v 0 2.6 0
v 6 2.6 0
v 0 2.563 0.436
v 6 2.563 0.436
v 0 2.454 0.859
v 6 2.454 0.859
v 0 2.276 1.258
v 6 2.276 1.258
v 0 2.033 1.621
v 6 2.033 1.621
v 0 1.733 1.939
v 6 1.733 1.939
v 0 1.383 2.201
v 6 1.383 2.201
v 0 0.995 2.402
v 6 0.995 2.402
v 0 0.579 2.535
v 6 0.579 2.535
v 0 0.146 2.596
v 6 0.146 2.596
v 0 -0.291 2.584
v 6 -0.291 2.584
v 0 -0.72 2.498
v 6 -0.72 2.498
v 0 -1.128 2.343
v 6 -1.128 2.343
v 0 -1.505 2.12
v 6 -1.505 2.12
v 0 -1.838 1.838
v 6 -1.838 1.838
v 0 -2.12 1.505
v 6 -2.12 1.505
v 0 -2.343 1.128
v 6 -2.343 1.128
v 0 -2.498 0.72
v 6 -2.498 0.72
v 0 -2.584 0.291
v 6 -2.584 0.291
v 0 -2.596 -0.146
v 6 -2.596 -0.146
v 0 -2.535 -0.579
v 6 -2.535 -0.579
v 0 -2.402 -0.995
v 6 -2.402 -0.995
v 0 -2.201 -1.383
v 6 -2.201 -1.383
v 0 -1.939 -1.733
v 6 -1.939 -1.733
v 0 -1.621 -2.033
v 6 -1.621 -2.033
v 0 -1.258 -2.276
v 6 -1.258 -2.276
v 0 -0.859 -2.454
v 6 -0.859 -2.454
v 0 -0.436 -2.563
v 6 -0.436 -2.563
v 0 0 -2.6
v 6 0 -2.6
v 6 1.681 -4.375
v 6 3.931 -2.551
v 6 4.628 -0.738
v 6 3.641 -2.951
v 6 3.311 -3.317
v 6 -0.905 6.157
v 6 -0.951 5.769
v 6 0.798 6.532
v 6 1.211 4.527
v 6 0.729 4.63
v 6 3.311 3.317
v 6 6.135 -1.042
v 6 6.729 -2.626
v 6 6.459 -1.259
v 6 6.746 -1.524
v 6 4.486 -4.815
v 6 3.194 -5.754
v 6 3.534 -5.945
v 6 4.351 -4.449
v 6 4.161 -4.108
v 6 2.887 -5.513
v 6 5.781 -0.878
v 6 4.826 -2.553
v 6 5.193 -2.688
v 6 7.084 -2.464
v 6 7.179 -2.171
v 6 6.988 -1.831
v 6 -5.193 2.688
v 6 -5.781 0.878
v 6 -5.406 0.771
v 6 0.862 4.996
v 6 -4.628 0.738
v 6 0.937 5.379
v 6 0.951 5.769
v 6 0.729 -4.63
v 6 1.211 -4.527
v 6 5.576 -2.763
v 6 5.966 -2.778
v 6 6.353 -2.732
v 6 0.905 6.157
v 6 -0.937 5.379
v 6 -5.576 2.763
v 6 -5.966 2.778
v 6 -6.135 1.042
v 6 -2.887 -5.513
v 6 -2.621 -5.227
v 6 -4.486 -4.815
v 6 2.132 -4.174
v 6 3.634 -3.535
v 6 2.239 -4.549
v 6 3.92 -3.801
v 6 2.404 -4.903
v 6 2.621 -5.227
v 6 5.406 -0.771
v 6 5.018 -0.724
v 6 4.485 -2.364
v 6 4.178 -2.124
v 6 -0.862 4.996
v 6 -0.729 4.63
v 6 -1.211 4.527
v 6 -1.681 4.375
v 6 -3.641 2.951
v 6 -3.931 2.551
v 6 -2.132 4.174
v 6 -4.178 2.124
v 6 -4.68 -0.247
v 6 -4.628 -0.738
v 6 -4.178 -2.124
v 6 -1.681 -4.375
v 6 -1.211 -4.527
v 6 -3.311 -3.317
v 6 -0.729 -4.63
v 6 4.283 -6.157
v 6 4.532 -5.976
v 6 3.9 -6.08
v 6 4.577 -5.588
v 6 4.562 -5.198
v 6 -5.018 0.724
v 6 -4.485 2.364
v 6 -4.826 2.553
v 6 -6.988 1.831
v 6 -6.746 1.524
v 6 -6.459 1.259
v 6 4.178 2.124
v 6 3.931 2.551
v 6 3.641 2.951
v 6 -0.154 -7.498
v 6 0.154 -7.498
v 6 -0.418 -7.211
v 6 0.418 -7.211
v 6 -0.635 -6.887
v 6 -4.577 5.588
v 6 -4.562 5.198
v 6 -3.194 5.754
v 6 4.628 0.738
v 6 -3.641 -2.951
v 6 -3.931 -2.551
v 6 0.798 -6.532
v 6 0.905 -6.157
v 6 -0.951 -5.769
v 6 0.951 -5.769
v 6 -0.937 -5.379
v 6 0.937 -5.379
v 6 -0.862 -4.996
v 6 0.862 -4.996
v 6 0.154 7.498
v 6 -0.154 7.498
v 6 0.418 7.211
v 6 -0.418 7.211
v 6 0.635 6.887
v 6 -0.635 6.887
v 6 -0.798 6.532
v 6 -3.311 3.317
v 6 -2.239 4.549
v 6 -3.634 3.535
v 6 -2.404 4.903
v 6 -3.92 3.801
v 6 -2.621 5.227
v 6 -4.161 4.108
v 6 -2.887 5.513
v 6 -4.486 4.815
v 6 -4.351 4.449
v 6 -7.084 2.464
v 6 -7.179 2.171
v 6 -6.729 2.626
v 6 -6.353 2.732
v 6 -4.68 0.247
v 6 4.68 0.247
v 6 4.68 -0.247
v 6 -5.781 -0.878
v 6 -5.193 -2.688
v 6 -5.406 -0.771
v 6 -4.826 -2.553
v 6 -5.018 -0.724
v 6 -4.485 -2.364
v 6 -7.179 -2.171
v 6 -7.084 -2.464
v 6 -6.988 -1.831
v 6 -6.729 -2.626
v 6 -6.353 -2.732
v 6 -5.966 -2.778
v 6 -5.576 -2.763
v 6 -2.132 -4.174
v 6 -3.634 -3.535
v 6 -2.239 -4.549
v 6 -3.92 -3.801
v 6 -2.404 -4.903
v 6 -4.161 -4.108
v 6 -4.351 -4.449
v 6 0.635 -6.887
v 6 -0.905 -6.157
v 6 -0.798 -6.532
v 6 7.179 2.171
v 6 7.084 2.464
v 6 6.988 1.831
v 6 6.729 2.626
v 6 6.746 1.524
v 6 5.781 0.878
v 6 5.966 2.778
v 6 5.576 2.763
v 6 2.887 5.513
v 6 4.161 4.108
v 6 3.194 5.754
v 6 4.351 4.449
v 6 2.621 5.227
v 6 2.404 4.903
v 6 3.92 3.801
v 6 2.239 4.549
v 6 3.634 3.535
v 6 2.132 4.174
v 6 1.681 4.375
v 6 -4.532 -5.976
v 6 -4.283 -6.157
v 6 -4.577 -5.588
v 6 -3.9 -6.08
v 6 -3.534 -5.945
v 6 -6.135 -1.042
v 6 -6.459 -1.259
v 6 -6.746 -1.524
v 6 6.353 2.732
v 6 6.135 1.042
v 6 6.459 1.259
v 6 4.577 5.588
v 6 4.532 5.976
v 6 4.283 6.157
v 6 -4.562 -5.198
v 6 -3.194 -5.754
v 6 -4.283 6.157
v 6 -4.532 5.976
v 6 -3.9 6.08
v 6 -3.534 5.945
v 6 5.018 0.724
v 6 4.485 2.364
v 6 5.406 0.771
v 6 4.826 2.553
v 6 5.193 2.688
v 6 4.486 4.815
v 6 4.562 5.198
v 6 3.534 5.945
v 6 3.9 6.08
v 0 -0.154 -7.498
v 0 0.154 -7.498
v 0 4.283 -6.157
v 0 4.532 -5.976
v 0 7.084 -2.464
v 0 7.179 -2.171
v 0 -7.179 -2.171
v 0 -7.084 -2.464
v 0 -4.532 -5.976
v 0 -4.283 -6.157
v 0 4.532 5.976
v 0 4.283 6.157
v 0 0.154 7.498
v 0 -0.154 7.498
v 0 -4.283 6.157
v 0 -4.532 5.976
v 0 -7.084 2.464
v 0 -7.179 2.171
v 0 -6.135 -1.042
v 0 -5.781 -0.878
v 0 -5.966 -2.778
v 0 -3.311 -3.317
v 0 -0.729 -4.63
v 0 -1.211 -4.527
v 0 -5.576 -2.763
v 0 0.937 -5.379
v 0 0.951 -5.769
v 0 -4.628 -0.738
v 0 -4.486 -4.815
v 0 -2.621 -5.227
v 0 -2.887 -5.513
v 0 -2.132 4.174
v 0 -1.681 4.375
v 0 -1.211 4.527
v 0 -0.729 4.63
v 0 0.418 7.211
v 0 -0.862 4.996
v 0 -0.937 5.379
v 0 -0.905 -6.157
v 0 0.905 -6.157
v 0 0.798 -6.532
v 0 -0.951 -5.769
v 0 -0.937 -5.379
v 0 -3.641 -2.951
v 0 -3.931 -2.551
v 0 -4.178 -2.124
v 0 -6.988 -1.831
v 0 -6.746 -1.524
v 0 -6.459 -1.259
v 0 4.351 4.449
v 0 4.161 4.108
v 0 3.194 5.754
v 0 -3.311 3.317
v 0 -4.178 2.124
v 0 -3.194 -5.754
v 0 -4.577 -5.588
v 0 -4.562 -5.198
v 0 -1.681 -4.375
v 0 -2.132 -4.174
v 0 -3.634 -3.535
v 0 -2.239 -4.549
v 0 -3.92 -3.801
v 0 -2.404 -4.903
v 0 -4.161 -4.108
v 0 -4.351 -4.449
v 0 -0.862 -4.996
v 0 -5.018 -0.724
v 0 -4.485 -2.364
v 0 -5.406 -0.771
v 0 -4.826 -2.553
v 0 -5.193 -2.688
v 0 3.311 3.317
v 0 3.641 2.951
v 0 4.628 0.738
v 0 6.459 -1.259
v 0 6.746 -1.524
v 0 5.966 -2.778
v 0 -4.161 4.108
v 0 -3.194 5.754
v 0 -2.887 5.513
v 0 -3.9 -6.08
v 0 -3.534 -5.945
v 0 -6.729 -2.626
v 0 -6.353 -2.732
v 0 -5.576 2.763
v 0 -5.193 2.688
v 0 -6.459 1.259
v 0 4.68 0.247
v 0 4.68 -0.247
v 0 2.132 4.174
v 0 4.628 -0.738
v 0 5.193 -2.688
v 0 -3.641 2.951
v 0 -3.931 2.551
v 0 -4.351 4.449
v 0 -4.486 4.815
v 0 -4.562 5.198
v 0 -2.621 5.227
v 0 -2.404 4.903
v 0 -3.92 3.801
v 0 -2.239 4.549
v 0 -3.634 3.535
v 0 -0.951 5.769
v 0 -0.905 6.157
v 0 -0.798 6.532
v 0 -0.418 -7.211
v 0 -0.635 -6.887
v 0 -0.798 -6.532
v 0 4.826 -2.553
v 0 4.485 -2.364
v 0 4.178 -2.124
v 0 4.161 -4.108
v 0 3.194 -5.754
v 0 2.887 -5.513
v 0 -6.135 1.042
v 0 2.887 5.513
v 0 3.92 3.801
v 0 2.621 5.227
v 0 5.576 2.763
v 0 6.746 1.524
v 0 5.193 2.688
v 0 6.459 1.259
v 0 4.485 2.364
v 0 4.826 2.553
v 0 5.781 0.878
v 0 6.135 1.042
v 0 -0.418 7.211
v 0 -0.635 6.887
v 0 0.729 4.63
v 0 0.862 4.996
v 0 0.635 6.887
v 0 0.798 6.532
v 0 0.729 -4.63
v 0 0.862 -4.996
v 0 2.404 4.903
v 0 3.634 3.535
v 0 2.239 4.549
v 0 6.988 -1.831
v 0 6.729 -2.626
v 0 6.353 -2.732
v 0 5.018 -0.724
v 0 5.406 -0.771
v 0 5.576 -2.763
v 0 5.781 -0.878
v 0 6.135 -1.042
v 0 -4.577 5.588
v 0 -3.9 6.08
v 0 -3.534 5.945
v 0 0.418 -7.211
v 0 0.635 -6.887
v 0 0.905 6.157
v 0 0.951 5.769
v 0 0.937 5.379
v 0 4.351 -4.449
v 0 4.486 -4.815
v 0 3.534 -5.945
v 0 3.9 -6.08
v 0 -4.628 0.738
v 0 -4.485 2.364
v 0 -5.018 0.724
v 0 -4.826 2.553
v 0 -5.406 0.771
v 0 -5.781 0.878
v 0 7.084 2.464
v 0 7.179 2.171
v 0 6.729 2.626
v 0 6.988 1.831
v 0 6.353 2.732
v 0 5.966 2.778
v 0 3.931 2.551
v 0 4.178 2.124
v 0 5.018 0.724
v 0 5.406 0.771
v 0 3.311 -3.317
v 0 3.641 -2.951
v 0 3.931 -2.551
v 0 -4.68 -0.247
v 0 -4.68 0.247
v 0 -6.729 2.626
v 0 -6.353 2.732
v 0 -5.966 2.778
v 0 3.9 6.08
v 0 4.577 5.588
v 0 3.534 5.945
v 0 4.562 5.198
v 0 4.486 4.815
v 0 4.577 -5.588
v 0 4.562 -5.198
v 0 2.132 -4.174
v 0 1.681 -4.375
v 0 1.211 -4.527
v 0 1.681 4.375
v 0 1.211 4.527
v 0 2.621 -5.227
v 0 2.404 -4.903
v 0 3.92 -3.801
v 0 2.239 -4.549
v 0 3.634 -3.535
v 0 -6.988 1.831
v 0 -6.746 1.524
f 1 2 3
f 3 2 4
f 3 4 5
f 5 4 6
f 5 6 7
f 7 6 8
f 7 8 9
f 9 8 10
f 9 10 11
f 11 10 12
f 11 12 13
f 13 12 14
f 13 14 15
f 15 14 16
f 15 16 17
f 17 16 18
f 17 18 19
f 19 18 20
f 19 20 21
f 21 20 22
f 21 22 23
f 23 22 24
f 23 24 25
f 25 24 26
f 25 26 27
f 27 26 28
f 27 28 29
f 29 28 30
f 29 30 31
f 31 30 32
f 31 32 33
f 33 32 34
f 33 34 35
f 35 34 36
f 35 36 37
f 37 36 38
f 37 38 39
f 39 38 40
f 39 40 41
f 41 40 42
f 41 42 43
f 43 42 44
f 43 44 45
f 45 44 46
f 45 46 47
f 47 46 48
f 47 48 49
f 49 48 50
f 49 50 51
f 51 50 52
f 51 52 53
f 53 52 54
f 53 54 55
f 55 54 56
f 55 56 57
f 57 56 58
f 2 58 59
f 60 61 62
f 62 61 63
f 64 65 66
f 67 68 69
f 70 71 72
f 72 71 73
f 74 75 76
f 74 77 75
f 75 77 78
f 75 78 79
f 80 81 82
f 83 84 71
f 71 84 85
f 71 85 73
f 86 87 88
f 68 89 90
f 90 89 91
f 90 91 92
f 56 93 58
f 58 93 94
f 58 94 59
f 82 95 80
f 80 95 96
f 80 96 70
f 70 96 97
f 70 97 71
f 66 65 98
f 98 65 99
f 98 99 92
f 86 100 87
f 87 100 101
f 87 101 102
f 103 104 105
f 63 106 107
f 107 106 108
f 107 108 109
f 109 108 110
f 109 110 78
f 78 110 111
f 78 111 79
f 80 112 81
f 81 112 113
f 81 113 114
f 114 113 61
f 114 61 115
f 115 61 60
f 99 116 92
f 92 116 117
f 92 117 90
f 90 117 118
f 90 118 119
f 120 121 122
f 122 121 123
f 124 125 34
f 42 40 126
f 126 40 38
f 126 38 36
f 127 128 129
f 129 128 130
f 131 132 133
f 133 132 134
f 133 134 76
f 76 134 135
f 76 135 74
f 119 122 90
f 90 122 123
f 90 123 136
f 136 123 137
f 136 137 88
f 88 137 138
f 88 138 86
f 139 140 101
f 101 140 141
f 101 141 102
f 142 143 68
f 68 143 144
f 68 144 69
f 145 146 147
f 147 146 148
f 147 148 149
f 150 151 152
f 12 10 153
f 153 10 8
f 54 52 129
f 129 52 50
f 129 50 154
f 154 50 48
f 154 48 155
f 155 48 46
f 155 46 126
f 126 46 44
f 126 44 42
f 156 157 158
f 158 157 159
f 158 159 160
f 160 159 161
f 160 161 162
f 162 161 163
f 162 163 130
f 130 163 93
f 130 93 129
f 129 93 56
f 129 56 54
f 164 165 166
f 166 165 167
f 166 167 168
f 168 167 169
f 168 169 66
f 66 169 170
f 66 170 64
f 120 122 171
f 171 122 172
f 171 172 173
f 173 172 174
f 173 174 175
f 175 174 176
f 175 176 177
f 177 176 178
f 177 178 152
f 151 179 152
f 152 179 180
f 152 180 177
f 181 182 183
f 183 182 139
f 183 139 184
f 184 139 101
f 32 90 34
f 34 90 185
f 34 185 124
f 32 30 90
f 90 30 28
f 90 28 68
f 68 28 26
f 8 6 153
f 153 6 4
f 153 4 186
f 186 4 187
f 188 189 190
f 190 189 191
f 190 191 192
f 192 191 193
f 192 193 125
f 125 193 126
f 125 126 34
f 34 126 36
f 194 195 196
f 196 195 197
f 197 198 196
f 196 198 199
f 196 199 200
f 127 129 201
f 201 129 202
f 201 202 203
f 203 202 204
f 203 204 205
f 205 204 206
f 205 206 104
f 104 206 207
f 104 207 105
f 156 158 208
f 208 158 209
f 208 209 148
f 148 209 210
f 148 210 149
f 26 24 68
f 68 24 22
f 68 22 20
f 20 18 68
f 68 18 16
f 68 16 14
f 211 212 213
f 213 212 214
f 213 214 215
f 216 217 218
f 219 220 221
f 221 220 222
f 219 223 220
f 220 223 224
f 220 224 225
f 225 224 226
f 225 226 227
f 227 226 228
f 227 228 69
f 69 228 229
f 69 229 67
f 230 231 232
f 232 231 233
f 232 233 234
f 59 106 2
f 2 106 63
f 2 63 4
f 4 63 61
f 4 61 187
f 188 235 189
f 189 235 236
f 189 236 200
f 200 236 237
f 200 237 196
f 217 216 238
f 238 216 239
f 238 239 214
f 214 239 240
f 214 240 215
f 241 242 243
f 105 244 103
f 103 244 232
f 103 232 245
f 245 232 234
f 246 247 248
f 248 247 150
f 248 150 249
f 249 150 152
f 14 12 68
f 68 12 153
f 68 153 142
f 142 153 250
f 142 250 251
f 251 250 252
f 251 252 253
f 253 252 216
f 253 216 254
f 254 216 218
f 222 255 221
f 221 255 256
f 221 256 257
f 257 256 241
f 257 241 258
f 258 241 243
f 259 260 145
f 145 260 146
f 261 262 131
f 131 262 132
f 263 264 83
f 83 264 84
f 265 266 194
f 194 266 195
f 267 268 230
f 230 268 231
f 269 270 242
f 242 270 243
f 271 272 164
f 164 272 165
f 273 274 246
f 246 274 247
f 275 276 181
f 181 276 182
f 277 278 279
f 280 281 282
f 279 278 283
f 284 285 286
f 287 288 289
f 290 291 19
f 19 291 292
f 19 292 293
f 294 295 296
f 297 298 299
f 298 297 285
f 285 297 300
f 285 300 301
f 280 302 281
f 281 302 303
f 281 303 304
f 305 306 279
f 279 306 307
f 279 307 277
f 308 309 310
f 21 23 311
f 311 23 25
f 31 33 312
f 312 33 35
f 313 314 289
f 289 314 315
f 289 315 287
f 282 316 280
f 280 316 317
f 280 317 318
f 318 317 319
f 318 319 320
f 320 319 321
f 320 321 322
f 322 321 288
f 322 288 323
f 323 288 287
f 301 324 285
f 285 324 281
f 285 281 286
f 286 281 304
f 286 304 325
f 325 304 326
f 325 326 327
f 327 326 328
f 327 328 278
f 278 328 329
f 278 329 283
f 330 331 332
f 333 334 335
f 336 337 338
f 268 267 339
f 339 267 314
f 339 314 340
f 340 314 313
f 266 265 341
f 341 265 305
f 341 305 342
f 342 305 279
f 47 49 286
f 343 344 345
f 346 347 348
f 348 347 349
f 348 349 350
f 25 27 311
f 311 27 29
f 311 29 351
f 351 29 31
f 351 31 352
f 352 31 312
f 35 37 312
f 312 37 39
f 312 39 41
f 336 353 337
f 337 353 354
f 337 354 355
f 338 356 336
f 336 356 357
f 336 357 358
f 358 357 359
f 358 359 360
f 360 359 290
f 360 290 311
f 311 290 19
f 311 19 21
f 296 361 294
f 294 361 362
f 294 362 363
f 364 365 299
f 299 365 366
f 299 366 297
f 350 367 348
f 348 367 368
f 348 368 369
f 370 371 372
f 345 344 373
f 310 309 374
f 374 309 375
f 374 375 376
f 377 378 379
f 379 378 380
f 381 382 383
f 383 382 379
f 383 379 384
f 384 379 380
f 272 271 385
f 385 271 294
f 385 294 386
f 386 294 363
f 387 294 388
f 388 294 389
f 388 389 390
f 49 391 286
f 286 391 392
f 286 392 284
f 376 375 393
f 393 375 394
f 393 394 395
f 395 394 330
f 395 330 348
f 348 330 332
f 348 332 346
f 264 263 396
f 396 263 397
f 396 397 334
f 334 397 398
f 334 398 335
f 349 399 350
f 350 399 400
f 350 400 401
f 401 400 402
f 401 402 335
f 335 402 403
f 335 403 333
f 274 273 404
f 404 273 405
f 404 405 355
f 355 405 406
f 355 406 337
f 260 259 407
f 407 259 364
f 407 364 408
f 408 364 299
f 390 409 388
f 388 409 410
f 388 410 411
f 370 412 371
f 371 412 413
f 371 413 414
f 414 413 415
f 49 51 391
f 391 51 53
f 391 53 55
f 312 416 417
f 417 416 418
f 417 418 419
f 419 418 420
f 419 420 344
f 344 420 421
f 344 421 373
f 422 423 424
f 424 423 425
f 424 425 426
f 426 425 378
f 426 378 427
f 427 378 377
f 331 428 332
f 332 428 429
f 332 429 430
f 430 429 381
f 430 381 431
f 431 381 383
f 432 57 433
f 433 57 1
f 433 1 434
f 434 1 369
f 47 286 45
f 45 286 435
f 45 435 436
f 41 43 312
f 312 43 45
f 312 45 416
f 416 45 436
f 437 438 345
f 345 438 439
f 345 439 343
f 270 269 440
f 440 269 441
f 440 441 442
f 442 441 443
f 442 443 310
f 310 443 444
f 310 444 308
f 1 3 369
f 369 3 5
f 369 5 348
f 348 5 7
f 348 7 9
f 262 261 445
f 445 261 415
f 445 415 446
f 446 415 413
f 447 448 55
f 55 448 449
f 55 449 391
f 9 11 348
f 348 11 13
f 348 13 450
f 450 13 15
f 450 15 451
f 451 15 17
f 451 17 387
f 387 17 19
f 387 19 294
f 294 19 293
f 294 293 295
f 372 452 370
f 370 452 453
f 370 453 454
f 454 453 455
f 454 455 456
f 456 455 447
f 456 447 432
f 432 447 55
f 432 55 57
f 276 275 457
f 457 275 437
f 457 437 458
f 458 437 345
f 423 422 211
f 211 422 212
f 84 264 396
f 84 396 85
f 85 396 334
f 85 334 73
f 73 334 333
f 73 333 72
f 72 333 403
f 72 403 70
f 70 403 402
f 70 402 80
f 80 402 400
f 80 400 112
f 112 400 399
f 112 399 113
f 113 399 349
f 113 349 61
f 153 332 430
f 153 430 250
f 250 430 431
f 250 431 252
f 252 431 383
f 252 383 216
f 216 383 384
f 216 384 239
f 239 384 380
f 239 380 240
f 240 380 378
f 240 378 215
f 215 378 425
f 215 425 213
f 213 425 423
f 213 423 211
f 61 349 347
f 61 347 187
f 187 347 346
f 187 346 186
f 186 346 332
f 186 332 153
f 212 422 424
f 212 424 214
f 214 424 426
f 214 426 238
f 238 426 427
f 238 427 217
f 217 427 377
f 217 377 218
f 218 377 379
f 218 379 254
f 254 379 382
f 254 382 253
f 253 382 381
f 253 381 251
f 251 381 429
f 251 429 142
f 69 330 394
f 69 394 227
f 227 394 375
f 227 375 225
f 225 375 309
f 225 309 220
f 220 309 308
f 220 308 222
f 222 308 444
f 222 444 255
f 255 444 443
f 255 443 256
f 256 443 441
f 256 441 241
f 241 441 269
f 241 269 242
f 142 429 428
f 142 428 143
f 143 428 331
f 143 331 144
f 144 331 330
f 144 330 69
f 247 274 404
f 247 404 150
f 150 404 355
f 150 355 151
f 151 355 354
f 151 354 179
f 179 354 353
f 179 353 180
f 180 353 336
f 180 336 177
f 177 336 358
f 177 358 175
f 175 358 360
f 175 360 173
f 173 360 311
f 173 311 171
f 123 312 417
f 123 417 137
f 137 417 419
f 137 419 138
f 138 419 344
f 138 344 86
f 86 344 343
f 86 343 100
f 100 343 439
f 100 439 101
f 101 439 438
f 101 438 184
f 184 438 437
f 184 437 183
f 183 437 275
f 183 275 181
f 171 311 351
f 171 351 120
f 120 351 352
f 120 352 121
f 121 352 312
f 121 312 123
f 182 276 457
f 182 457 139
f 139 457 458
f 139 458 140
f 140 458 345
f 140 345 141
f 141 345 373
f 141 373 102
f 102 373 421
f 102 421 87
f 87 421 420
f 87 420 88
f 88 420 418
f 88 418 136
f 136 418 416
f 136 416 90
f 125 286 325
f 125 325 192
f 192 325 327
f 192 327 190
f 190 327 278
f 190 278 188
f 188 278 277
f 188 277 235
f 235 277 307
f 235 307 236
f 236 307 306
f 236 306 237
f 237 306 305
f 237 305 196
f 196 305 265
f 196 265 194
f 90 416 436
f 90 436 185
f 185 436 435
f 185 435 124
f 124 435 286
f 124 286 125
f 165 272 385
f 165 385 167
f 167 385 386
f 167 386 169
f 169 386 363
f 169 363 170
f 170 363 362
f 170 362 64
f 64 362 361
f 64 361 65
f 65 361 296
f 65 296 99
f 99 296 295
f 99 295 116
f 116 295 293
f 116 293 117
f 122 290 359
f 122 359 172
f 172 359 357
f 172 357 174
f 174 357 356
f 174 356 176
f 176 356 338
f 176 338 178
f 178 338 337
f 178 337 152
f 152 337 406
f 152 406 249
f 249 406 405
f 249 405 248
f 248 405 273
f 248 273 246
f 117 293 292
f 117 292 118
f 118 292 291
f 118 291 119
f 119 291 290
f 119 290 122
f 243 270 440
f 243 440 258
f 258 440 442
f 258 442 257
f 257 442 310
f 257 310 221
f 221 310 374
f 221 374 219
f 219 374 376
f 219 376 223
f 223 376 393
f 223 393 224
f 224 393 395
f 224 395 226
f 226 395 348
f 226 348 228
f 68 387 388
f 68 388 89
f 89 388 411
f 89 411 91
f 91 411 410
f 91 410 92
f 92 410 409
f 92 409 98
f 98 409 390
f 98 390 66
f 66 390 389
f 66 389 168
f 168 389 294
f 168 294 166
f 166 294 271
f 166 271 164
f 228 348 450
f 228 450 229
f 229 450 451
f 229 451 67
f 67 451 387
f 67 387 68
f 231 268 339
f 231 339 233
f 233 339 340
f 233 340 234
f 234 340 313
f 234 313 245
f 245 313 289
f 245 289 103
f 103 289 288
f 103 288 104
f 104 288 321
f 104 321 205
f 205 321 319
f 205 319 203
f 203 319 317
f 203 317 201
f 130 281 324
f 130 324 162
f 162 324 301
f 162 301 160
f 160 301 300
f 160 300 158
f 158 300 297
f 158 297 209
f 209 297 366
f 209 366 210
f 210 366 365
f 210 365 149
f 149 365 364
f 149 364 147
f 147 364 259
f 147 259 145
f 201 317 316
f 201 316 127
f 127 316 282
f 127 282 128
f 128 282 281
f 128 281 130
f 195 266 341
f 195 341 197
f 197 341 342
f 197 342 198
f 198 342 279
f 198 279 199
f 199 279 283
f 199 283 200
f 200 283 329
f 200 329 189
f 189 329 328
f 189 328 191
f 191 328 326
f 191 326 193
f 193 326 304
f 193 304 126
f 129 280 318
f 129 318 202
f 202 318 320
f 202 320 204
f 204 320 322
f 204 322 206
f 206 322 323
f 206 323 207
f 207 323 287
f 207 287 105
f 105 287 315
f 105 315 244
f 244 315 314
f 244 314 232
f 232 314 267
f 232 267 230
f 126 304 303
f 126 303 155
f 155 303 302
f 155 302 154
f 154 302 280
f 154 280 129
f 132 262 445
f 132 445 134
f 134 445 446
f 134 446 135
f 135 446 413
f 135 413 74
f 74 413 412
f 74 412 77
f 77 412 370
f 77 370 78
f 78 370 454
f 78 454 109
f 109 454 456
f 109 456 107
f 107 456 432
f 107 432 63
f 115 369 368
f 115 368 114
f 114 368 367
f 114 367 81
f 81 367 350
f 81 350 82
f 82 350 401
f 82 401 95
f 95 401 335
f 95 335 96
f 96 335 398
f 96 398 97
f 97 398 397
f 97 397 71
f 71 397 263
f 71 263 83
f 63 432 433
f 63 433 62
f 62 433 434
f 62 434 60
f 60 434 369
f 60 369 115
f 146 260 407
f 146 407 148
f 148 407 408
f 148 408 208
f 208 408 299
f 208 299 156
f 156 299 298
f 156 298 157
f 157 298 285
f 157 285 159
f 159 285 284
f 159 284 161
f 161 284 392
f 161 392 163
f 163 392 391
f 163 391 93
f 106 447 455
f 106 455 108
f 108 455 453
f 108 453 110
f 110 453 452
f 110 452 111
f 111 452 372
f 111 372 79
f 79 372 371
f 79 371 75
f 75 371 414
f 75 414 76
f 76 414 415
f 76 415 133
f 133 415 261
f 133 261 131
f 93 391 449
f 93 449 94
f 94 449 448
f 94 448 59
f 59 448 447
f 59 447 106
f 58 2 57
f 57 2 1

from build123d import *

# Parameters (mm, degrees)
BASPROSKE_W         = 6
BASPROSKE_H         = 7.5
TOOTHCUT_DEPTH      = 13.186057607
TEETHCUTS_COUNT     = 10
TEETHCUTS_ANGLE     = 324
BORSKE_R            = 2.5
BORE_DEPTH          = 50.0000508
SKETCH1_R           = 2.6
CUT_EXTRUDE1_DEPTH  = 12.991156361
BOSS_EXTRUDE1_DEPTH = 6


with BuildPart() as part:
    # BasProSke → Base-Revolve (revolve)
    with BuildSketch(Plane(origin=(0, 0, 0), x_dir=(1, 0, 0), z_dir=(0, 1, 0)), mode=Mode.PRIVATE) as base_revolve_sk:
        with Locations((3, 3.75)):
            Rectangle(BASPROSKE_W, BASPROSKE_H)
    revolve(base_revolve_sk.sketch.rotate(Axis((-10, 0, 0), (1, 0, 0)), 180), axis=Axis((-10, 0, 0), (1, 0, 0)))

    # TooCutSke → ToothCut (cut, through all)
    with BuildSketch(Plane(origin=(0, 0, 0), x_dir=(0, 0, -1), z_dir=(1, 0, 0))):
        with BuildLine():
            ThreePointArc((0.737676151, 4.628079099), (0, 4.6865), (-0.737676151, 4.628079099))
            ThreePointArc((-0.737676151, 4.628079099), (-1.051542781, 6.151798382), (-2.205760267, 7.194877817))
            ThreePointArc((-2.205760267, 7.194877817), (0, 7.5254), (2.205760267, 7.194877817))
            ThreePointArc((2.205760267, 7.194877817), (1.051542781, 6.151798382), (0.737676151, 4.628079099))
        make_face()
    toothcut = extrude(amount=TOOTHCUT_DEPTH, mode=Mode.SUBTRACT)

    # TeethCuts: ToothCut ×10 about axis
    teethcuts_axis = Axis((-10, 0, 0), (1, 0, 0))
    for i in range(1, TEETHCUTS_COUNT):
        add(toothcut.rotate(teethcuts_axis, i * TEETHCUTS_ANGLE / (TEETHCUTS_COUNT - 1)), mode=Mode.SUBTRACT)

    # BorSke → Bore (cut, symmetric)
    with BuildSketch(Plane(origin=(0, 0, 0), x_dir=(0, 0, -1), z_dir=(1, 0, 0))):
        with Locations(Location((0, 0, 0), (0, 0, 180))):
            Circle(BORSKE_R)
    extrude(amount=BORE_DEPTH, both=True, mode=Mode.SUBTRACT)

    # Sketch1 → Cut-Extrude1 (cut, through all)
    with BuildSketch(Plane(origin=(6, 0, 0), x_dir=(0, 0, -1), z_dir=(1, 0, 0))):
        Circle(SKETCH1_R)
    extrude(amount=-CUT_EXTRUDE1_DEPTH, mode=Mode.SUBTRACT)

    # Sketch2 → Boss-Extrude1 (add)
    with BuildSketch(Plane(origin=(6, 0, 0), x_dir=(0, 0, -1), z_dir=(1, 0, 0))):
        Polygon((0, 2.6), (2.6, 0), (2.6, 2.6), align=None)
    extrude(amount=-BOSS_EXTRUDE1_DEPTH)


solid = part.part
